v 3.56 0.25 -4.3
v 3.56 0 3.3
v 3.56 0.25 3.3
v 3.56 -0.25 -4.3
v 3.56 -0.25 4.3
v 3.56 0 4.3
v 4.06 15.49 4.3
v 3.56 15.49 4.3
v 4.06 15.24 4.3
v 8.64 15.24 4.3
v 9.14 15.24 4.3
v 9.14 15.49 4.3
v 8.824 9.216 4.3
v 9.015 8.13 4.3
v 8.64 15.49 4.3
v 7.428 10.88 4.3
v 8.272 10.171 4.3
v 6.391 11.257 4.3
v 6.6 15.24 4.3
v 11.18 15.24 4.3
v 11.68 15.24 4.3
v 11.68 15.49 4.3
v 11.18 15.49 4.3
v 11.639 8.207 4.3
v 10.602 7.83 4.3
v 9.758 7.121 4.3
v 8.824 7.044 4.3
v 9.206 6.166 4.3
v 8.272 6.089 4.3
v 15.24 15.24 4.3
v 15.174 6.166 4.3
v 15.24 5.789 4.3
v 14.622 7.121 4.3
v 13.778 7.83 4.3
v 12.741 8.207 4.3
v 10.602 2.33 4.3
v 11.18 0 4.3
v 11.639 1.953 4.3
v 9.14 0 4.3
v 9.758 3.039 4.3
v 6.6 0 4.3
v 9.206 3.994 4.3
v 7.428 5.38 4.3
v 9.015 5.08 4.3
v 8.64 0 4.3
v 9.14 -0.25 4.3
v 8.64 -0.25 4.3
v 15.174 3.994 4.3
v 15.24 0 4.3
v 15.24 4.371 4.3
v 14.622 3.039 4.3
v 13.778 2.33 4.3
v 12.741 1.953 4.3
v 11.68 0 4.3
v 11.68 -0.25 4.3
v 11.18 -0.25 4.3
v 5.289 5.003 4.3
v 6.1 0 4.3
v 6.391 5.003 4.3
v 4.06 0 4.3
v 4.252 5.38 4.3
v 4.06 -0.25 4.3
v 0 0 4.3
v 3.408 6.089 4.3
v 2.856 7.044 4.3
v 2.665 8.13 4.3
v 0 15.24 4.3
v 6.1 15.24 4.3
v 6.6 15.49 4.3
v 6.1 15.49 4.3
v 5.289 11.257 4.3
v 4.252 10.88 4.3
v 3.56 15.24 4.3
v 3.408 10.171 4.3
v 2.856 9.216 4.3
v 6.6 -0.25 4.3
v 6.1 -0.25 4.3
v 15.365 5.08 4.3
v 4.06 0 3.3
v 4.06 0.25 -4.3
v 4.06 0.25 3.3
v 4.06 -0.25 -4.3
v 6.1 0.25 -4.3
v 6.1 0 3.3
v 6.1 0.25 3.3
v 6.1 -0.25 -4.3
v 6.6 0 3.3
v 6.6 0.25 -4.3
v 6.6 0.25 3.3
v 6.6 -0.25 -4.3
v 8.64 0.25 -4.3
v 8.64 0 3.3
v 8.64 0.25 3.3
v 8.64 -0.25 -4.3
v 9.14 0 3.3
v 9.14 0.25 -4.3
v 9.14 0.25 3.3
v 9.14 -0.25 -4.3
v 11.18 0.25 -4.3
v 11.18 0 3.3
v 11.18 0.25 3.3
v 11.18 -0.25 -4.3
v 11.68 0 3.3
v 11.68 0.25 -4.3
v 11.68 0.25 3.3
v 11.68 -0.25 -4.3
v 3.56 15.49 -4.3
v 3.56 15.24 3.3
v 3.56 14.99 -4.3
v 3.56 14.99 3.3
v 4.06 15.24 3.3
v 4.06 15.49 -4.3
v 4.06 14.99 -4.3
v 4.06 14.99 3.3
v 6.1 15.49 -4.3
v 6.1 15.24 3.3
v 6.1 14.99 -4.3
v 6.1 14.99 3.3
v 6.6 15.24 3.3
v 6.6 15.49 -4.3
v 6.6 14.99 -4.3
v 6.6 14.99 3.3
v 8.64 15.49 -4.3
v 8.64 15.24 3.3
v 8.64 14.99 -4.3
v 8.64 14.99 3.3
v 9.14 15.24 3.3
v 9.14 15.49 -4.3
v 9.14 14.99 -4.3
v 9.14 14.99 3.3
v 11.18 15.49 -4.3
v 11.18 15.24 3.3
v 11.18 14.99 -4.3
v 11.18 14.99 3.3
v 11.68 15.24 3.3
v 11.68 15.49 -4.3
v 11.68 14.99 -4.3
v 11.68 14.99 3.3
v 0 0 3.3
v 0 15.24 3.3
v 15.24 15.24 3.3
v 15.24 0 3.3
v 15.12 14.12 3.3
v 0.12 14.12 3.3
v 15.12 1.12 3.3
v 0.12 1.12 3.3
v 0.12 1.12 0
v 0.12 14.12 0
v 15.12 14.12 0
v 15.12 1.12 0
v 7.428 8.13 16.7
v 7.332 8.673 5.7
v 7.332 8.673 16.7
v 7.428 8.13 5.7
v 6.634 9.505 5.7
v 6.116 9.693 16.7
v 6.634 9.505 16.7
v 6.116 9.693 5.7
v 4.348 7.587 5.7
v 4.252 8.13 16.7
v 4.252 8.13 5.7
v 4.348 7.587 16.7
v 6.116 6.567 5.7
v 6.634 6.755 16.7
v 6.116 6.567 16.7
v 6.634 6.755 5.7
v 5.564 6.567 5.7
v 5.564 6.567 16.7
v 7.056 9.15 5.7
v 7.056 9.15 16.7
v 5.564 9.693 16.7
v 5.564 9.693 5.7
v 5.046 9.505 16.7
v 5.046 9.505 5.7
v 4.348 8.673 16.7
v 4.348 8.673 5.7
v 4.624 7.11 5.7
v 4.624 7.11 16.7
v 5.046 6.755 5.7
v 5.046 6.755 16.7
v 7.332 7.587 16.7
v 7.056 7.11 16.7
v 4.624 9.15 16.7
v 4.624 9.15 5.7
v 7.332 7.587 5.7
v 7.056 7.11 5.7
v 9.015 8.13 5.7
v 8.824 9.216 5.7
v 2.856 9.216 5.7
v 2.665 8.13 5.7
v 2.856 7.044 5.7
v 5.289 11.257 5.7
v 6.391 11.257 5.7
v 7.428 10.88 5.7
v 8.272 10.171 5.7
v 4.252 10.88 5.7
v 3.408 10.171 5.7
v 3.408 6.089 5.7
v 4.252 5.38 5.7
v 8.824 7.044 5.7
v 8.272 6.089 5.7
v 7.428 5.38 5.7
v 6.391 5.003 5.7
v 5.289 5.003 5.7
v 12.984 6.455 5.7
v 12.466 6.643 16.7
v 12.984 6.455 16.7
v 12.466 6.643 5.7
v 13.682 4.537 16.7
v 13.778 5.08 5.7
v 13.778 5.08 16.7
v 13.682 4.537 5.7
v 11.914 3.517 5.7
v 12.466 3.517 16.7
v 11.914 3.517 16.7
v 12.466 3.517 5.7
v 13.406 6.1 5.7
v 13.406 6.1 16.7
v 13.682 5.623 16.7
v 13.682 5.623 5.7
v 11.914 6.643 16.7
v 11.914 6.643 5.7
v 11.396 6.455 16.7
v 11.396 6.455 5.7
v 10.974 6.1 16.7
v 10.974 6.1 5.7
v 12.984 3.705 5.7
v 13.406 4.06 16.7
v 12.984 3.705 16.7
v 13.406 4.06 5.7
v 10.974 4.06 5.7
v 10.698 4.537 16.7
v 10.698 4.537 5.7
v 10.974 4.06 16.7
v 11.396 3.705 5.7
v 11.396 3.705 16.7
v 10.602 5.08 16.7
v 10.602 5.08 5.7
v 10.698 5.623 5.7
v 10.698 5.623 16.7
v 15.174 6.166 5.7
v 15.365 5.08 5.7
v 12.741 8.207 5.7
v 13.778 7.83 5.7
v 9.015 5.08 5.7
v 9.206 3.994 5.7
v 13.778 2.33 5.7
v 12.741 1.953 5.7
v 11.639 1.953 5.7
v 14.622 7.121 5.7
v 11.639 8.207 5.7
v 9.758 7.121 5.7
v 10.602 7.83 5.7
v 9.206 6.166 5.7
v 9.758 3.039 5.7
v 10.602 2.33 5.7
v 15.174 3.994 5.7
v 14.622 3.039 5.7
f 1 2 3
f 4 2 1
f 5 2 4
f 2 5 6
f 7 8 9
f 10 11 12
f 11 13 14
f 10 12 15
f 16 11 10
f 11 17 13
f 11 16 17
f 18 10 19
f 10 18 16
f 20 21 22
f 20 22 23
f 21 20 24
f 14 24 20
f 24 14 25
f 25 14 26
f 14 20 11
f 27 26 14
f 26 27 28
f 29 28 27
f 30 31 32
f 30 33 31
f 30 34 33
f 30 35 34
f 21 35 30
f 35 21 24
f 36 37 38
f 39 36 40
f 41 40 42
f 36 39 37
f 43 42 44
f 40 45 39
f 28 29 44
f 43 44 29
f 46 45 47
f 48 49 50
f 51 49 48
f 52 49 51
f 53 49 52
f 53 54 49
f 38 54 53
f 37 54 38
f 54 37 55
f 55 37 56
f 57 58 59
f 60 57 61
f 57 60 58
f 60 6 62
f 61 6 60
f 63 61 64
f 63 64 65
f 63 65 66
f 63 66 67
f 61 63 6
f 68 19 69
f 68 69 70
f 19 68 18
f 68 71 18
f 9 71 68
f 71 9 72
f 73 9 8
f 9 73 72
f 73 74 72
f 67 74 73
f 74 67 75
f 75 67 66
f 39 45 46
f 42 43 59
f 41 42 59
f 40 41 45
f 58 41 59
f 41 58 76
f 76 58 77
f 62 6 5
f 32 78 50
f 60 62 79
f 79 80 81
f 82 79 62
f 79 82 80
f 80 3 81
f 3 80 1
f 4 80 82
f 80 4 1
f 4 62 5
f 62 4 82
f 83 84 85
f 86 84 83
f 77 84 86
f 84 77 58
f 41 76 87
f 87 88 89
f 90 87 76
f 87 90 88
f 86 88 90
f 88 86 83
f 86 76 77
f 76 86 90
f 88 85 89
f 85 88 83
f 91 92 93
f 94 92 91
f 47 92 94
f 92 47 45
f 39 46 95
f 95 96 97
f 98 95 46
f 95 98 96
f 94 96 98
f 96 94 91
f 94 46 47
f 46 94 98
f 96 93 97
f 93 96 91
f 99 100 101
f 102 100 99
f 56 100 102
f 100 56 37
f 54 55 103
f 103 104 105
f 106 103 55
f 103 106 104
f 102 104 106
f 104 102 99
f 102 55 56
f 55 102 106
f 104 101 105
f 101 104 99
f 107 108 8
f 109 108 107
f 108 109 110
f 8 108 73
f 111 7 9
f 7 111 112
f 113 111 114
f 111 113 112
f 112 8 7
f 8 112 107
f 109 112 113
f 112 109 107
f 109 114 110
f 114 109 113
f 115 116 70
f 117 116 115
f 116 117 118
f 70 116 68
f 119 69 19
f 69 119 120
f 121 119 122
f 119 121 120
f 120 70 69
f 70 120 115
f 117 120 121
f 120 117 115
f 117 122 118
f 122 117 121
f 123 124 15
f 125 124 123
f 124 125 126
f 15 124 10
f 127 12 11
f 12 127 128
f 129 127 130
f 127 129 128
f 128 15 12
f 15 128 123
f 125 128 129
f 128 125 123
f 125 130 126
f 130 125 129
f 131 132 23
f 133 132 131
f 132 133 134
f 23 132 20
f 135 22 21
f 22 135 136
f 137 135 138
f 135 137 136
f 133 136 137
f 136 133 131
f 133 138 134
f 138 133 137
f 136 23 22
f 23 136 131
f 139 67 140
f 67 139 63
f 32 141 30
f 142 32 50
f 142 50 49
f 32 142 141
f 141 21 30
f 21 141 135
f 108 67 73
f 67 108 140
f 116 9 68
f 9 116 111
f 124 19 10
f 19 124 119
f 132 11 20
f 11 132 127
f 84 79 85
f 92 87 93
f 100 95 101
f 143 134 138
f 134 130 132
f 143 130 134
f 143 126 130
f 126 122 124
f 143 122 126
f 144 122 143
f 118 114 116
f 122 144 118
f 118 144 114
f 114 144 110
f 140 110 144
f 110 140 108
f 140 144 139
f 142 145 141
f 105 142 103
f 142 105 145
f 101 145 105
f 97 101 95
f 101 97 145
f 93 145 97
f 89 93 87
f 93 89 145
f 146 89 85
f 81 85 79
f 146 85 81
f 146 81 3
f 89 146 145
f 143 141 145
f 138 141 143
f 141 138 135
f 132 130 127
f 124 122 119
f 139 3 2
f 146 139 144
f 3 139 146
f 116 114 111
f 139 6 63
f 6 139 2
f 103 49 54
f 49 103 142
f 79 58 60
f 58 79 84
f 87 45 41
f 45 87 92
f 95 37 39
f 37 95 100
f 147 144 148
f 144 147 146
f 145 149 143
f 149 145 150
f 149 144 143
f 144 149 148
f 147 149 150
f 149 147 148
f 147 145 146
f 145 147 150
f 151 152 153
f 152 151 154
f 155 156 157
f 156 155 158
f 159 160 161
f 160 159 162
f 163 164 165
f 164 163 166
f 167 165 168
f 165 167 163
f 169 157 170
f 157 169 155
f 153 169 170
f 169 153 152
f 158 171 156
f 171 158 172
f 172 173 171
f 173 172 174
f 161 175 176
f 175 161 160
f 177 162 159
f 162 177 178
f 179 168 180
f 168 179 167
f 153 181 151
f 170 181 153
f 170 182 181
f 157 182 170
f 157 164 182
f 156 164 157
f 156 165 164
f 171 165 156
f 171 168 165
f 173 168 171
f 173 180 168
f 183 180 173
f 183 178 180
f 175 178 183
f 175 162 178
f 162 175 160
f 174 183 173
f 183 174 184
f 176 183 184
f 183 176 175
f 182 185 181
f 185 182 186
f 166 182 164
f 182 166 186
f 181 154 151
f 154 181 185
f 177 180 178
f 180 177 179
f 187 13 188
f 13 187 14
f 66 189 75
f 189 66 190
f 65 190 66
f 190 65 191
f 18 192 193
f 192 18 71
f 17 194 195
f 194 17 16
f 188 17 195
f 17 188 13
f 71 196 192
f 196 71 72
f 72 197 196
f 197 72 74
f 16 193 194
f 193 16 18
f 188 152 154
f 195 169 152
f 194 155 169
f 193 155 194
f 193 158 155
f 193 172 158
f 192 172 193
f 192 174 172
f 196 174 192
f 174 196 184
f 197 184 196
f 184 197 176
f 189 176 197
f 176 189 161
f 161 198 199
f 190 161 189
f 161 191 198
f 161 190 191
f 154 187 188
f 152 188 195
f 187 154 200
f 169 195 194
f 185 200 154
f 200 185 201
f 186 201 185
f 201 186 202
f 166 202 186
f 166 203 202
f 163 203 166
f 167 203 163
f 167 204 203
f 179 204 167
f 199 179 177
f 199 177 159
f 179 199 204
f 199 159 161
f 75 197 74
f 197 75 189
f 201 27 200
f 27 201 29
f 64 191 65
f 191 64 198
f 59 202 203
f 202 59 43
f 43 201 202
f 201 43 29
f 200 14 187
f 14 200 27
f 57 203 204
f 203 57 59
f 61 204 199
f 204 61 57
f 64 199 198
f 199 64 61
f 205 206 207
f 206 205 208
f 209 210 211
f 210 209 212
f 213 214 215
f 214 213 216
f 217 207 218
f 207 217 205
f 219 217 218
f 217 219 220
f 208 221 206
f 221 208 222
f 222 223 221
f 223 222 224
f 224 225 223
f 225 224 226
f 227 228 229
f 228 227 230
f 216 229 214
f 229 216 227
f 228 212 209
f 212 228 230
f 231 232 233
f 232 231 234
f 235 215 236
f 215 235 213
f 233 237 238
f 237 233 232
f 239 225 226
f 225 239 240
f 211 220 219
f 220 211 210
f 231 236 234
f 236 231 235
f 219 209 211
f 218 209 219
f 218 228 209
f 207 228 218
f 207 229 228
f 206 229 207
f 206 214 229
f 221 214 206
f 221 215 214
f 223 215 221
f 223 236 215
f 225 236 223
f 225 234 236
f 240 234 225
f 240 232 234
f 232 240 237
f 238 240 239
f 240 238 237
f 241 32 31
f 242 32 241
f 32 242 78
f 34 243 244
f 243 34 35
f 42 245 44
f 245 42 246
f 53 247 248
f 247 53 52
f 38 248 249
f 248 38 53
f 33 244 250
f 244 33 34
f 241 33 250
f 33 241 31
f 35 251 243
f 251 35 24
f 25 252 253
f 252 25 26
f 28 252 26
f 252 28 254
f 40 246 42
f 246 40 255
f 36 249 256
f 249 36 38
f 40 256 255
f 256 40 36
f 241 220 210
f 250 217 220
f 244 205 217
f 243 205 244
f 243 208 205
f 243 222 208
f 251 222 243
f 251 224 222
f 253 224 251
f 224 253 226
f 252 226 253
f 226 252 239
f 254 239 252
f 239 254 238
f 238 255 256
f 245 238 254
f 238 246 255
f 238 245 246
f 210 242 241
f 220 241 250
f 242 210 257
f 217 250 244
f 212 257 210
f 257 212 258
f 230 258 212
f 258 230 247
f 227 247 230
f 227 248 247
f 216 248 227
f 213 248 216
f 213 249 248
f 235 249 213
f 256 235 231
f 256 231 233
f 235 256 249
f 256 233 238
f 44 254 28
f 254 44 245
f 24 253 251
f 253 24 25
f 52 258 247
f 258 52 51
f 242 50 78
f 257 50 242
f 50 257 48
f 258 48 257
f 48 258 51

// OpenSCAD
tube_height=12.4;
tube_r=3.175/2;
tube_bottom_h=1.4;
tube_bottom_r=3.175;
tube_pos1=[5.84,8.13,4.3];
tube_pos2=[12.19,5.08,4.3];

ceramic_pack=[15.24,15.24,1];
ceramic_pack_pos=[0,0,3.3];

bottom_pack=[15,13,3.3];
bottom_pack_pos=[0.12,1.12,0];

pin=[0.5,0.5,8.6];
pin_pos1=[3.81,0,0];
pin_pos2=[3.81,15.24,0];

translate(ceramic_pack_pos)
    color("white",1)
    cube(ceramic_pack);

translate(bottom_pack_pos)
    color("grey",1)
    cube(bottom_pack);

translate(tube_pos1)
    color("grey",1)
    cylinder(tube_height,tube_r,tube_r,false, $fn=18);
 
translate(tube_pos1)
    color("grey",1) 
    cylinder(tube_bottom_h,tube_bottom_r,tube_bottom_r,false,  $fn=18);

translate(tube_pos2)
    color("grey",1)
    cylinder(tube_height,tube_r,tube_r,false,  $fn=18);
    
translate(tube_pos2)
    color("grey",1) 
    cylinder(tube_bottom_h,tube_bottom_r,tube_bottom_r,false,  $fn=18);

for(i=[0:3]){
translate(pin_pos1+[i*2.54,0,0])
    color("silver",1)
    cube(pin,true);

}
for(i=[0:3]){
translate(pin_pos2+[i*2.54,0,0])
    color("silver",1)
    cube(pin,true);

}
